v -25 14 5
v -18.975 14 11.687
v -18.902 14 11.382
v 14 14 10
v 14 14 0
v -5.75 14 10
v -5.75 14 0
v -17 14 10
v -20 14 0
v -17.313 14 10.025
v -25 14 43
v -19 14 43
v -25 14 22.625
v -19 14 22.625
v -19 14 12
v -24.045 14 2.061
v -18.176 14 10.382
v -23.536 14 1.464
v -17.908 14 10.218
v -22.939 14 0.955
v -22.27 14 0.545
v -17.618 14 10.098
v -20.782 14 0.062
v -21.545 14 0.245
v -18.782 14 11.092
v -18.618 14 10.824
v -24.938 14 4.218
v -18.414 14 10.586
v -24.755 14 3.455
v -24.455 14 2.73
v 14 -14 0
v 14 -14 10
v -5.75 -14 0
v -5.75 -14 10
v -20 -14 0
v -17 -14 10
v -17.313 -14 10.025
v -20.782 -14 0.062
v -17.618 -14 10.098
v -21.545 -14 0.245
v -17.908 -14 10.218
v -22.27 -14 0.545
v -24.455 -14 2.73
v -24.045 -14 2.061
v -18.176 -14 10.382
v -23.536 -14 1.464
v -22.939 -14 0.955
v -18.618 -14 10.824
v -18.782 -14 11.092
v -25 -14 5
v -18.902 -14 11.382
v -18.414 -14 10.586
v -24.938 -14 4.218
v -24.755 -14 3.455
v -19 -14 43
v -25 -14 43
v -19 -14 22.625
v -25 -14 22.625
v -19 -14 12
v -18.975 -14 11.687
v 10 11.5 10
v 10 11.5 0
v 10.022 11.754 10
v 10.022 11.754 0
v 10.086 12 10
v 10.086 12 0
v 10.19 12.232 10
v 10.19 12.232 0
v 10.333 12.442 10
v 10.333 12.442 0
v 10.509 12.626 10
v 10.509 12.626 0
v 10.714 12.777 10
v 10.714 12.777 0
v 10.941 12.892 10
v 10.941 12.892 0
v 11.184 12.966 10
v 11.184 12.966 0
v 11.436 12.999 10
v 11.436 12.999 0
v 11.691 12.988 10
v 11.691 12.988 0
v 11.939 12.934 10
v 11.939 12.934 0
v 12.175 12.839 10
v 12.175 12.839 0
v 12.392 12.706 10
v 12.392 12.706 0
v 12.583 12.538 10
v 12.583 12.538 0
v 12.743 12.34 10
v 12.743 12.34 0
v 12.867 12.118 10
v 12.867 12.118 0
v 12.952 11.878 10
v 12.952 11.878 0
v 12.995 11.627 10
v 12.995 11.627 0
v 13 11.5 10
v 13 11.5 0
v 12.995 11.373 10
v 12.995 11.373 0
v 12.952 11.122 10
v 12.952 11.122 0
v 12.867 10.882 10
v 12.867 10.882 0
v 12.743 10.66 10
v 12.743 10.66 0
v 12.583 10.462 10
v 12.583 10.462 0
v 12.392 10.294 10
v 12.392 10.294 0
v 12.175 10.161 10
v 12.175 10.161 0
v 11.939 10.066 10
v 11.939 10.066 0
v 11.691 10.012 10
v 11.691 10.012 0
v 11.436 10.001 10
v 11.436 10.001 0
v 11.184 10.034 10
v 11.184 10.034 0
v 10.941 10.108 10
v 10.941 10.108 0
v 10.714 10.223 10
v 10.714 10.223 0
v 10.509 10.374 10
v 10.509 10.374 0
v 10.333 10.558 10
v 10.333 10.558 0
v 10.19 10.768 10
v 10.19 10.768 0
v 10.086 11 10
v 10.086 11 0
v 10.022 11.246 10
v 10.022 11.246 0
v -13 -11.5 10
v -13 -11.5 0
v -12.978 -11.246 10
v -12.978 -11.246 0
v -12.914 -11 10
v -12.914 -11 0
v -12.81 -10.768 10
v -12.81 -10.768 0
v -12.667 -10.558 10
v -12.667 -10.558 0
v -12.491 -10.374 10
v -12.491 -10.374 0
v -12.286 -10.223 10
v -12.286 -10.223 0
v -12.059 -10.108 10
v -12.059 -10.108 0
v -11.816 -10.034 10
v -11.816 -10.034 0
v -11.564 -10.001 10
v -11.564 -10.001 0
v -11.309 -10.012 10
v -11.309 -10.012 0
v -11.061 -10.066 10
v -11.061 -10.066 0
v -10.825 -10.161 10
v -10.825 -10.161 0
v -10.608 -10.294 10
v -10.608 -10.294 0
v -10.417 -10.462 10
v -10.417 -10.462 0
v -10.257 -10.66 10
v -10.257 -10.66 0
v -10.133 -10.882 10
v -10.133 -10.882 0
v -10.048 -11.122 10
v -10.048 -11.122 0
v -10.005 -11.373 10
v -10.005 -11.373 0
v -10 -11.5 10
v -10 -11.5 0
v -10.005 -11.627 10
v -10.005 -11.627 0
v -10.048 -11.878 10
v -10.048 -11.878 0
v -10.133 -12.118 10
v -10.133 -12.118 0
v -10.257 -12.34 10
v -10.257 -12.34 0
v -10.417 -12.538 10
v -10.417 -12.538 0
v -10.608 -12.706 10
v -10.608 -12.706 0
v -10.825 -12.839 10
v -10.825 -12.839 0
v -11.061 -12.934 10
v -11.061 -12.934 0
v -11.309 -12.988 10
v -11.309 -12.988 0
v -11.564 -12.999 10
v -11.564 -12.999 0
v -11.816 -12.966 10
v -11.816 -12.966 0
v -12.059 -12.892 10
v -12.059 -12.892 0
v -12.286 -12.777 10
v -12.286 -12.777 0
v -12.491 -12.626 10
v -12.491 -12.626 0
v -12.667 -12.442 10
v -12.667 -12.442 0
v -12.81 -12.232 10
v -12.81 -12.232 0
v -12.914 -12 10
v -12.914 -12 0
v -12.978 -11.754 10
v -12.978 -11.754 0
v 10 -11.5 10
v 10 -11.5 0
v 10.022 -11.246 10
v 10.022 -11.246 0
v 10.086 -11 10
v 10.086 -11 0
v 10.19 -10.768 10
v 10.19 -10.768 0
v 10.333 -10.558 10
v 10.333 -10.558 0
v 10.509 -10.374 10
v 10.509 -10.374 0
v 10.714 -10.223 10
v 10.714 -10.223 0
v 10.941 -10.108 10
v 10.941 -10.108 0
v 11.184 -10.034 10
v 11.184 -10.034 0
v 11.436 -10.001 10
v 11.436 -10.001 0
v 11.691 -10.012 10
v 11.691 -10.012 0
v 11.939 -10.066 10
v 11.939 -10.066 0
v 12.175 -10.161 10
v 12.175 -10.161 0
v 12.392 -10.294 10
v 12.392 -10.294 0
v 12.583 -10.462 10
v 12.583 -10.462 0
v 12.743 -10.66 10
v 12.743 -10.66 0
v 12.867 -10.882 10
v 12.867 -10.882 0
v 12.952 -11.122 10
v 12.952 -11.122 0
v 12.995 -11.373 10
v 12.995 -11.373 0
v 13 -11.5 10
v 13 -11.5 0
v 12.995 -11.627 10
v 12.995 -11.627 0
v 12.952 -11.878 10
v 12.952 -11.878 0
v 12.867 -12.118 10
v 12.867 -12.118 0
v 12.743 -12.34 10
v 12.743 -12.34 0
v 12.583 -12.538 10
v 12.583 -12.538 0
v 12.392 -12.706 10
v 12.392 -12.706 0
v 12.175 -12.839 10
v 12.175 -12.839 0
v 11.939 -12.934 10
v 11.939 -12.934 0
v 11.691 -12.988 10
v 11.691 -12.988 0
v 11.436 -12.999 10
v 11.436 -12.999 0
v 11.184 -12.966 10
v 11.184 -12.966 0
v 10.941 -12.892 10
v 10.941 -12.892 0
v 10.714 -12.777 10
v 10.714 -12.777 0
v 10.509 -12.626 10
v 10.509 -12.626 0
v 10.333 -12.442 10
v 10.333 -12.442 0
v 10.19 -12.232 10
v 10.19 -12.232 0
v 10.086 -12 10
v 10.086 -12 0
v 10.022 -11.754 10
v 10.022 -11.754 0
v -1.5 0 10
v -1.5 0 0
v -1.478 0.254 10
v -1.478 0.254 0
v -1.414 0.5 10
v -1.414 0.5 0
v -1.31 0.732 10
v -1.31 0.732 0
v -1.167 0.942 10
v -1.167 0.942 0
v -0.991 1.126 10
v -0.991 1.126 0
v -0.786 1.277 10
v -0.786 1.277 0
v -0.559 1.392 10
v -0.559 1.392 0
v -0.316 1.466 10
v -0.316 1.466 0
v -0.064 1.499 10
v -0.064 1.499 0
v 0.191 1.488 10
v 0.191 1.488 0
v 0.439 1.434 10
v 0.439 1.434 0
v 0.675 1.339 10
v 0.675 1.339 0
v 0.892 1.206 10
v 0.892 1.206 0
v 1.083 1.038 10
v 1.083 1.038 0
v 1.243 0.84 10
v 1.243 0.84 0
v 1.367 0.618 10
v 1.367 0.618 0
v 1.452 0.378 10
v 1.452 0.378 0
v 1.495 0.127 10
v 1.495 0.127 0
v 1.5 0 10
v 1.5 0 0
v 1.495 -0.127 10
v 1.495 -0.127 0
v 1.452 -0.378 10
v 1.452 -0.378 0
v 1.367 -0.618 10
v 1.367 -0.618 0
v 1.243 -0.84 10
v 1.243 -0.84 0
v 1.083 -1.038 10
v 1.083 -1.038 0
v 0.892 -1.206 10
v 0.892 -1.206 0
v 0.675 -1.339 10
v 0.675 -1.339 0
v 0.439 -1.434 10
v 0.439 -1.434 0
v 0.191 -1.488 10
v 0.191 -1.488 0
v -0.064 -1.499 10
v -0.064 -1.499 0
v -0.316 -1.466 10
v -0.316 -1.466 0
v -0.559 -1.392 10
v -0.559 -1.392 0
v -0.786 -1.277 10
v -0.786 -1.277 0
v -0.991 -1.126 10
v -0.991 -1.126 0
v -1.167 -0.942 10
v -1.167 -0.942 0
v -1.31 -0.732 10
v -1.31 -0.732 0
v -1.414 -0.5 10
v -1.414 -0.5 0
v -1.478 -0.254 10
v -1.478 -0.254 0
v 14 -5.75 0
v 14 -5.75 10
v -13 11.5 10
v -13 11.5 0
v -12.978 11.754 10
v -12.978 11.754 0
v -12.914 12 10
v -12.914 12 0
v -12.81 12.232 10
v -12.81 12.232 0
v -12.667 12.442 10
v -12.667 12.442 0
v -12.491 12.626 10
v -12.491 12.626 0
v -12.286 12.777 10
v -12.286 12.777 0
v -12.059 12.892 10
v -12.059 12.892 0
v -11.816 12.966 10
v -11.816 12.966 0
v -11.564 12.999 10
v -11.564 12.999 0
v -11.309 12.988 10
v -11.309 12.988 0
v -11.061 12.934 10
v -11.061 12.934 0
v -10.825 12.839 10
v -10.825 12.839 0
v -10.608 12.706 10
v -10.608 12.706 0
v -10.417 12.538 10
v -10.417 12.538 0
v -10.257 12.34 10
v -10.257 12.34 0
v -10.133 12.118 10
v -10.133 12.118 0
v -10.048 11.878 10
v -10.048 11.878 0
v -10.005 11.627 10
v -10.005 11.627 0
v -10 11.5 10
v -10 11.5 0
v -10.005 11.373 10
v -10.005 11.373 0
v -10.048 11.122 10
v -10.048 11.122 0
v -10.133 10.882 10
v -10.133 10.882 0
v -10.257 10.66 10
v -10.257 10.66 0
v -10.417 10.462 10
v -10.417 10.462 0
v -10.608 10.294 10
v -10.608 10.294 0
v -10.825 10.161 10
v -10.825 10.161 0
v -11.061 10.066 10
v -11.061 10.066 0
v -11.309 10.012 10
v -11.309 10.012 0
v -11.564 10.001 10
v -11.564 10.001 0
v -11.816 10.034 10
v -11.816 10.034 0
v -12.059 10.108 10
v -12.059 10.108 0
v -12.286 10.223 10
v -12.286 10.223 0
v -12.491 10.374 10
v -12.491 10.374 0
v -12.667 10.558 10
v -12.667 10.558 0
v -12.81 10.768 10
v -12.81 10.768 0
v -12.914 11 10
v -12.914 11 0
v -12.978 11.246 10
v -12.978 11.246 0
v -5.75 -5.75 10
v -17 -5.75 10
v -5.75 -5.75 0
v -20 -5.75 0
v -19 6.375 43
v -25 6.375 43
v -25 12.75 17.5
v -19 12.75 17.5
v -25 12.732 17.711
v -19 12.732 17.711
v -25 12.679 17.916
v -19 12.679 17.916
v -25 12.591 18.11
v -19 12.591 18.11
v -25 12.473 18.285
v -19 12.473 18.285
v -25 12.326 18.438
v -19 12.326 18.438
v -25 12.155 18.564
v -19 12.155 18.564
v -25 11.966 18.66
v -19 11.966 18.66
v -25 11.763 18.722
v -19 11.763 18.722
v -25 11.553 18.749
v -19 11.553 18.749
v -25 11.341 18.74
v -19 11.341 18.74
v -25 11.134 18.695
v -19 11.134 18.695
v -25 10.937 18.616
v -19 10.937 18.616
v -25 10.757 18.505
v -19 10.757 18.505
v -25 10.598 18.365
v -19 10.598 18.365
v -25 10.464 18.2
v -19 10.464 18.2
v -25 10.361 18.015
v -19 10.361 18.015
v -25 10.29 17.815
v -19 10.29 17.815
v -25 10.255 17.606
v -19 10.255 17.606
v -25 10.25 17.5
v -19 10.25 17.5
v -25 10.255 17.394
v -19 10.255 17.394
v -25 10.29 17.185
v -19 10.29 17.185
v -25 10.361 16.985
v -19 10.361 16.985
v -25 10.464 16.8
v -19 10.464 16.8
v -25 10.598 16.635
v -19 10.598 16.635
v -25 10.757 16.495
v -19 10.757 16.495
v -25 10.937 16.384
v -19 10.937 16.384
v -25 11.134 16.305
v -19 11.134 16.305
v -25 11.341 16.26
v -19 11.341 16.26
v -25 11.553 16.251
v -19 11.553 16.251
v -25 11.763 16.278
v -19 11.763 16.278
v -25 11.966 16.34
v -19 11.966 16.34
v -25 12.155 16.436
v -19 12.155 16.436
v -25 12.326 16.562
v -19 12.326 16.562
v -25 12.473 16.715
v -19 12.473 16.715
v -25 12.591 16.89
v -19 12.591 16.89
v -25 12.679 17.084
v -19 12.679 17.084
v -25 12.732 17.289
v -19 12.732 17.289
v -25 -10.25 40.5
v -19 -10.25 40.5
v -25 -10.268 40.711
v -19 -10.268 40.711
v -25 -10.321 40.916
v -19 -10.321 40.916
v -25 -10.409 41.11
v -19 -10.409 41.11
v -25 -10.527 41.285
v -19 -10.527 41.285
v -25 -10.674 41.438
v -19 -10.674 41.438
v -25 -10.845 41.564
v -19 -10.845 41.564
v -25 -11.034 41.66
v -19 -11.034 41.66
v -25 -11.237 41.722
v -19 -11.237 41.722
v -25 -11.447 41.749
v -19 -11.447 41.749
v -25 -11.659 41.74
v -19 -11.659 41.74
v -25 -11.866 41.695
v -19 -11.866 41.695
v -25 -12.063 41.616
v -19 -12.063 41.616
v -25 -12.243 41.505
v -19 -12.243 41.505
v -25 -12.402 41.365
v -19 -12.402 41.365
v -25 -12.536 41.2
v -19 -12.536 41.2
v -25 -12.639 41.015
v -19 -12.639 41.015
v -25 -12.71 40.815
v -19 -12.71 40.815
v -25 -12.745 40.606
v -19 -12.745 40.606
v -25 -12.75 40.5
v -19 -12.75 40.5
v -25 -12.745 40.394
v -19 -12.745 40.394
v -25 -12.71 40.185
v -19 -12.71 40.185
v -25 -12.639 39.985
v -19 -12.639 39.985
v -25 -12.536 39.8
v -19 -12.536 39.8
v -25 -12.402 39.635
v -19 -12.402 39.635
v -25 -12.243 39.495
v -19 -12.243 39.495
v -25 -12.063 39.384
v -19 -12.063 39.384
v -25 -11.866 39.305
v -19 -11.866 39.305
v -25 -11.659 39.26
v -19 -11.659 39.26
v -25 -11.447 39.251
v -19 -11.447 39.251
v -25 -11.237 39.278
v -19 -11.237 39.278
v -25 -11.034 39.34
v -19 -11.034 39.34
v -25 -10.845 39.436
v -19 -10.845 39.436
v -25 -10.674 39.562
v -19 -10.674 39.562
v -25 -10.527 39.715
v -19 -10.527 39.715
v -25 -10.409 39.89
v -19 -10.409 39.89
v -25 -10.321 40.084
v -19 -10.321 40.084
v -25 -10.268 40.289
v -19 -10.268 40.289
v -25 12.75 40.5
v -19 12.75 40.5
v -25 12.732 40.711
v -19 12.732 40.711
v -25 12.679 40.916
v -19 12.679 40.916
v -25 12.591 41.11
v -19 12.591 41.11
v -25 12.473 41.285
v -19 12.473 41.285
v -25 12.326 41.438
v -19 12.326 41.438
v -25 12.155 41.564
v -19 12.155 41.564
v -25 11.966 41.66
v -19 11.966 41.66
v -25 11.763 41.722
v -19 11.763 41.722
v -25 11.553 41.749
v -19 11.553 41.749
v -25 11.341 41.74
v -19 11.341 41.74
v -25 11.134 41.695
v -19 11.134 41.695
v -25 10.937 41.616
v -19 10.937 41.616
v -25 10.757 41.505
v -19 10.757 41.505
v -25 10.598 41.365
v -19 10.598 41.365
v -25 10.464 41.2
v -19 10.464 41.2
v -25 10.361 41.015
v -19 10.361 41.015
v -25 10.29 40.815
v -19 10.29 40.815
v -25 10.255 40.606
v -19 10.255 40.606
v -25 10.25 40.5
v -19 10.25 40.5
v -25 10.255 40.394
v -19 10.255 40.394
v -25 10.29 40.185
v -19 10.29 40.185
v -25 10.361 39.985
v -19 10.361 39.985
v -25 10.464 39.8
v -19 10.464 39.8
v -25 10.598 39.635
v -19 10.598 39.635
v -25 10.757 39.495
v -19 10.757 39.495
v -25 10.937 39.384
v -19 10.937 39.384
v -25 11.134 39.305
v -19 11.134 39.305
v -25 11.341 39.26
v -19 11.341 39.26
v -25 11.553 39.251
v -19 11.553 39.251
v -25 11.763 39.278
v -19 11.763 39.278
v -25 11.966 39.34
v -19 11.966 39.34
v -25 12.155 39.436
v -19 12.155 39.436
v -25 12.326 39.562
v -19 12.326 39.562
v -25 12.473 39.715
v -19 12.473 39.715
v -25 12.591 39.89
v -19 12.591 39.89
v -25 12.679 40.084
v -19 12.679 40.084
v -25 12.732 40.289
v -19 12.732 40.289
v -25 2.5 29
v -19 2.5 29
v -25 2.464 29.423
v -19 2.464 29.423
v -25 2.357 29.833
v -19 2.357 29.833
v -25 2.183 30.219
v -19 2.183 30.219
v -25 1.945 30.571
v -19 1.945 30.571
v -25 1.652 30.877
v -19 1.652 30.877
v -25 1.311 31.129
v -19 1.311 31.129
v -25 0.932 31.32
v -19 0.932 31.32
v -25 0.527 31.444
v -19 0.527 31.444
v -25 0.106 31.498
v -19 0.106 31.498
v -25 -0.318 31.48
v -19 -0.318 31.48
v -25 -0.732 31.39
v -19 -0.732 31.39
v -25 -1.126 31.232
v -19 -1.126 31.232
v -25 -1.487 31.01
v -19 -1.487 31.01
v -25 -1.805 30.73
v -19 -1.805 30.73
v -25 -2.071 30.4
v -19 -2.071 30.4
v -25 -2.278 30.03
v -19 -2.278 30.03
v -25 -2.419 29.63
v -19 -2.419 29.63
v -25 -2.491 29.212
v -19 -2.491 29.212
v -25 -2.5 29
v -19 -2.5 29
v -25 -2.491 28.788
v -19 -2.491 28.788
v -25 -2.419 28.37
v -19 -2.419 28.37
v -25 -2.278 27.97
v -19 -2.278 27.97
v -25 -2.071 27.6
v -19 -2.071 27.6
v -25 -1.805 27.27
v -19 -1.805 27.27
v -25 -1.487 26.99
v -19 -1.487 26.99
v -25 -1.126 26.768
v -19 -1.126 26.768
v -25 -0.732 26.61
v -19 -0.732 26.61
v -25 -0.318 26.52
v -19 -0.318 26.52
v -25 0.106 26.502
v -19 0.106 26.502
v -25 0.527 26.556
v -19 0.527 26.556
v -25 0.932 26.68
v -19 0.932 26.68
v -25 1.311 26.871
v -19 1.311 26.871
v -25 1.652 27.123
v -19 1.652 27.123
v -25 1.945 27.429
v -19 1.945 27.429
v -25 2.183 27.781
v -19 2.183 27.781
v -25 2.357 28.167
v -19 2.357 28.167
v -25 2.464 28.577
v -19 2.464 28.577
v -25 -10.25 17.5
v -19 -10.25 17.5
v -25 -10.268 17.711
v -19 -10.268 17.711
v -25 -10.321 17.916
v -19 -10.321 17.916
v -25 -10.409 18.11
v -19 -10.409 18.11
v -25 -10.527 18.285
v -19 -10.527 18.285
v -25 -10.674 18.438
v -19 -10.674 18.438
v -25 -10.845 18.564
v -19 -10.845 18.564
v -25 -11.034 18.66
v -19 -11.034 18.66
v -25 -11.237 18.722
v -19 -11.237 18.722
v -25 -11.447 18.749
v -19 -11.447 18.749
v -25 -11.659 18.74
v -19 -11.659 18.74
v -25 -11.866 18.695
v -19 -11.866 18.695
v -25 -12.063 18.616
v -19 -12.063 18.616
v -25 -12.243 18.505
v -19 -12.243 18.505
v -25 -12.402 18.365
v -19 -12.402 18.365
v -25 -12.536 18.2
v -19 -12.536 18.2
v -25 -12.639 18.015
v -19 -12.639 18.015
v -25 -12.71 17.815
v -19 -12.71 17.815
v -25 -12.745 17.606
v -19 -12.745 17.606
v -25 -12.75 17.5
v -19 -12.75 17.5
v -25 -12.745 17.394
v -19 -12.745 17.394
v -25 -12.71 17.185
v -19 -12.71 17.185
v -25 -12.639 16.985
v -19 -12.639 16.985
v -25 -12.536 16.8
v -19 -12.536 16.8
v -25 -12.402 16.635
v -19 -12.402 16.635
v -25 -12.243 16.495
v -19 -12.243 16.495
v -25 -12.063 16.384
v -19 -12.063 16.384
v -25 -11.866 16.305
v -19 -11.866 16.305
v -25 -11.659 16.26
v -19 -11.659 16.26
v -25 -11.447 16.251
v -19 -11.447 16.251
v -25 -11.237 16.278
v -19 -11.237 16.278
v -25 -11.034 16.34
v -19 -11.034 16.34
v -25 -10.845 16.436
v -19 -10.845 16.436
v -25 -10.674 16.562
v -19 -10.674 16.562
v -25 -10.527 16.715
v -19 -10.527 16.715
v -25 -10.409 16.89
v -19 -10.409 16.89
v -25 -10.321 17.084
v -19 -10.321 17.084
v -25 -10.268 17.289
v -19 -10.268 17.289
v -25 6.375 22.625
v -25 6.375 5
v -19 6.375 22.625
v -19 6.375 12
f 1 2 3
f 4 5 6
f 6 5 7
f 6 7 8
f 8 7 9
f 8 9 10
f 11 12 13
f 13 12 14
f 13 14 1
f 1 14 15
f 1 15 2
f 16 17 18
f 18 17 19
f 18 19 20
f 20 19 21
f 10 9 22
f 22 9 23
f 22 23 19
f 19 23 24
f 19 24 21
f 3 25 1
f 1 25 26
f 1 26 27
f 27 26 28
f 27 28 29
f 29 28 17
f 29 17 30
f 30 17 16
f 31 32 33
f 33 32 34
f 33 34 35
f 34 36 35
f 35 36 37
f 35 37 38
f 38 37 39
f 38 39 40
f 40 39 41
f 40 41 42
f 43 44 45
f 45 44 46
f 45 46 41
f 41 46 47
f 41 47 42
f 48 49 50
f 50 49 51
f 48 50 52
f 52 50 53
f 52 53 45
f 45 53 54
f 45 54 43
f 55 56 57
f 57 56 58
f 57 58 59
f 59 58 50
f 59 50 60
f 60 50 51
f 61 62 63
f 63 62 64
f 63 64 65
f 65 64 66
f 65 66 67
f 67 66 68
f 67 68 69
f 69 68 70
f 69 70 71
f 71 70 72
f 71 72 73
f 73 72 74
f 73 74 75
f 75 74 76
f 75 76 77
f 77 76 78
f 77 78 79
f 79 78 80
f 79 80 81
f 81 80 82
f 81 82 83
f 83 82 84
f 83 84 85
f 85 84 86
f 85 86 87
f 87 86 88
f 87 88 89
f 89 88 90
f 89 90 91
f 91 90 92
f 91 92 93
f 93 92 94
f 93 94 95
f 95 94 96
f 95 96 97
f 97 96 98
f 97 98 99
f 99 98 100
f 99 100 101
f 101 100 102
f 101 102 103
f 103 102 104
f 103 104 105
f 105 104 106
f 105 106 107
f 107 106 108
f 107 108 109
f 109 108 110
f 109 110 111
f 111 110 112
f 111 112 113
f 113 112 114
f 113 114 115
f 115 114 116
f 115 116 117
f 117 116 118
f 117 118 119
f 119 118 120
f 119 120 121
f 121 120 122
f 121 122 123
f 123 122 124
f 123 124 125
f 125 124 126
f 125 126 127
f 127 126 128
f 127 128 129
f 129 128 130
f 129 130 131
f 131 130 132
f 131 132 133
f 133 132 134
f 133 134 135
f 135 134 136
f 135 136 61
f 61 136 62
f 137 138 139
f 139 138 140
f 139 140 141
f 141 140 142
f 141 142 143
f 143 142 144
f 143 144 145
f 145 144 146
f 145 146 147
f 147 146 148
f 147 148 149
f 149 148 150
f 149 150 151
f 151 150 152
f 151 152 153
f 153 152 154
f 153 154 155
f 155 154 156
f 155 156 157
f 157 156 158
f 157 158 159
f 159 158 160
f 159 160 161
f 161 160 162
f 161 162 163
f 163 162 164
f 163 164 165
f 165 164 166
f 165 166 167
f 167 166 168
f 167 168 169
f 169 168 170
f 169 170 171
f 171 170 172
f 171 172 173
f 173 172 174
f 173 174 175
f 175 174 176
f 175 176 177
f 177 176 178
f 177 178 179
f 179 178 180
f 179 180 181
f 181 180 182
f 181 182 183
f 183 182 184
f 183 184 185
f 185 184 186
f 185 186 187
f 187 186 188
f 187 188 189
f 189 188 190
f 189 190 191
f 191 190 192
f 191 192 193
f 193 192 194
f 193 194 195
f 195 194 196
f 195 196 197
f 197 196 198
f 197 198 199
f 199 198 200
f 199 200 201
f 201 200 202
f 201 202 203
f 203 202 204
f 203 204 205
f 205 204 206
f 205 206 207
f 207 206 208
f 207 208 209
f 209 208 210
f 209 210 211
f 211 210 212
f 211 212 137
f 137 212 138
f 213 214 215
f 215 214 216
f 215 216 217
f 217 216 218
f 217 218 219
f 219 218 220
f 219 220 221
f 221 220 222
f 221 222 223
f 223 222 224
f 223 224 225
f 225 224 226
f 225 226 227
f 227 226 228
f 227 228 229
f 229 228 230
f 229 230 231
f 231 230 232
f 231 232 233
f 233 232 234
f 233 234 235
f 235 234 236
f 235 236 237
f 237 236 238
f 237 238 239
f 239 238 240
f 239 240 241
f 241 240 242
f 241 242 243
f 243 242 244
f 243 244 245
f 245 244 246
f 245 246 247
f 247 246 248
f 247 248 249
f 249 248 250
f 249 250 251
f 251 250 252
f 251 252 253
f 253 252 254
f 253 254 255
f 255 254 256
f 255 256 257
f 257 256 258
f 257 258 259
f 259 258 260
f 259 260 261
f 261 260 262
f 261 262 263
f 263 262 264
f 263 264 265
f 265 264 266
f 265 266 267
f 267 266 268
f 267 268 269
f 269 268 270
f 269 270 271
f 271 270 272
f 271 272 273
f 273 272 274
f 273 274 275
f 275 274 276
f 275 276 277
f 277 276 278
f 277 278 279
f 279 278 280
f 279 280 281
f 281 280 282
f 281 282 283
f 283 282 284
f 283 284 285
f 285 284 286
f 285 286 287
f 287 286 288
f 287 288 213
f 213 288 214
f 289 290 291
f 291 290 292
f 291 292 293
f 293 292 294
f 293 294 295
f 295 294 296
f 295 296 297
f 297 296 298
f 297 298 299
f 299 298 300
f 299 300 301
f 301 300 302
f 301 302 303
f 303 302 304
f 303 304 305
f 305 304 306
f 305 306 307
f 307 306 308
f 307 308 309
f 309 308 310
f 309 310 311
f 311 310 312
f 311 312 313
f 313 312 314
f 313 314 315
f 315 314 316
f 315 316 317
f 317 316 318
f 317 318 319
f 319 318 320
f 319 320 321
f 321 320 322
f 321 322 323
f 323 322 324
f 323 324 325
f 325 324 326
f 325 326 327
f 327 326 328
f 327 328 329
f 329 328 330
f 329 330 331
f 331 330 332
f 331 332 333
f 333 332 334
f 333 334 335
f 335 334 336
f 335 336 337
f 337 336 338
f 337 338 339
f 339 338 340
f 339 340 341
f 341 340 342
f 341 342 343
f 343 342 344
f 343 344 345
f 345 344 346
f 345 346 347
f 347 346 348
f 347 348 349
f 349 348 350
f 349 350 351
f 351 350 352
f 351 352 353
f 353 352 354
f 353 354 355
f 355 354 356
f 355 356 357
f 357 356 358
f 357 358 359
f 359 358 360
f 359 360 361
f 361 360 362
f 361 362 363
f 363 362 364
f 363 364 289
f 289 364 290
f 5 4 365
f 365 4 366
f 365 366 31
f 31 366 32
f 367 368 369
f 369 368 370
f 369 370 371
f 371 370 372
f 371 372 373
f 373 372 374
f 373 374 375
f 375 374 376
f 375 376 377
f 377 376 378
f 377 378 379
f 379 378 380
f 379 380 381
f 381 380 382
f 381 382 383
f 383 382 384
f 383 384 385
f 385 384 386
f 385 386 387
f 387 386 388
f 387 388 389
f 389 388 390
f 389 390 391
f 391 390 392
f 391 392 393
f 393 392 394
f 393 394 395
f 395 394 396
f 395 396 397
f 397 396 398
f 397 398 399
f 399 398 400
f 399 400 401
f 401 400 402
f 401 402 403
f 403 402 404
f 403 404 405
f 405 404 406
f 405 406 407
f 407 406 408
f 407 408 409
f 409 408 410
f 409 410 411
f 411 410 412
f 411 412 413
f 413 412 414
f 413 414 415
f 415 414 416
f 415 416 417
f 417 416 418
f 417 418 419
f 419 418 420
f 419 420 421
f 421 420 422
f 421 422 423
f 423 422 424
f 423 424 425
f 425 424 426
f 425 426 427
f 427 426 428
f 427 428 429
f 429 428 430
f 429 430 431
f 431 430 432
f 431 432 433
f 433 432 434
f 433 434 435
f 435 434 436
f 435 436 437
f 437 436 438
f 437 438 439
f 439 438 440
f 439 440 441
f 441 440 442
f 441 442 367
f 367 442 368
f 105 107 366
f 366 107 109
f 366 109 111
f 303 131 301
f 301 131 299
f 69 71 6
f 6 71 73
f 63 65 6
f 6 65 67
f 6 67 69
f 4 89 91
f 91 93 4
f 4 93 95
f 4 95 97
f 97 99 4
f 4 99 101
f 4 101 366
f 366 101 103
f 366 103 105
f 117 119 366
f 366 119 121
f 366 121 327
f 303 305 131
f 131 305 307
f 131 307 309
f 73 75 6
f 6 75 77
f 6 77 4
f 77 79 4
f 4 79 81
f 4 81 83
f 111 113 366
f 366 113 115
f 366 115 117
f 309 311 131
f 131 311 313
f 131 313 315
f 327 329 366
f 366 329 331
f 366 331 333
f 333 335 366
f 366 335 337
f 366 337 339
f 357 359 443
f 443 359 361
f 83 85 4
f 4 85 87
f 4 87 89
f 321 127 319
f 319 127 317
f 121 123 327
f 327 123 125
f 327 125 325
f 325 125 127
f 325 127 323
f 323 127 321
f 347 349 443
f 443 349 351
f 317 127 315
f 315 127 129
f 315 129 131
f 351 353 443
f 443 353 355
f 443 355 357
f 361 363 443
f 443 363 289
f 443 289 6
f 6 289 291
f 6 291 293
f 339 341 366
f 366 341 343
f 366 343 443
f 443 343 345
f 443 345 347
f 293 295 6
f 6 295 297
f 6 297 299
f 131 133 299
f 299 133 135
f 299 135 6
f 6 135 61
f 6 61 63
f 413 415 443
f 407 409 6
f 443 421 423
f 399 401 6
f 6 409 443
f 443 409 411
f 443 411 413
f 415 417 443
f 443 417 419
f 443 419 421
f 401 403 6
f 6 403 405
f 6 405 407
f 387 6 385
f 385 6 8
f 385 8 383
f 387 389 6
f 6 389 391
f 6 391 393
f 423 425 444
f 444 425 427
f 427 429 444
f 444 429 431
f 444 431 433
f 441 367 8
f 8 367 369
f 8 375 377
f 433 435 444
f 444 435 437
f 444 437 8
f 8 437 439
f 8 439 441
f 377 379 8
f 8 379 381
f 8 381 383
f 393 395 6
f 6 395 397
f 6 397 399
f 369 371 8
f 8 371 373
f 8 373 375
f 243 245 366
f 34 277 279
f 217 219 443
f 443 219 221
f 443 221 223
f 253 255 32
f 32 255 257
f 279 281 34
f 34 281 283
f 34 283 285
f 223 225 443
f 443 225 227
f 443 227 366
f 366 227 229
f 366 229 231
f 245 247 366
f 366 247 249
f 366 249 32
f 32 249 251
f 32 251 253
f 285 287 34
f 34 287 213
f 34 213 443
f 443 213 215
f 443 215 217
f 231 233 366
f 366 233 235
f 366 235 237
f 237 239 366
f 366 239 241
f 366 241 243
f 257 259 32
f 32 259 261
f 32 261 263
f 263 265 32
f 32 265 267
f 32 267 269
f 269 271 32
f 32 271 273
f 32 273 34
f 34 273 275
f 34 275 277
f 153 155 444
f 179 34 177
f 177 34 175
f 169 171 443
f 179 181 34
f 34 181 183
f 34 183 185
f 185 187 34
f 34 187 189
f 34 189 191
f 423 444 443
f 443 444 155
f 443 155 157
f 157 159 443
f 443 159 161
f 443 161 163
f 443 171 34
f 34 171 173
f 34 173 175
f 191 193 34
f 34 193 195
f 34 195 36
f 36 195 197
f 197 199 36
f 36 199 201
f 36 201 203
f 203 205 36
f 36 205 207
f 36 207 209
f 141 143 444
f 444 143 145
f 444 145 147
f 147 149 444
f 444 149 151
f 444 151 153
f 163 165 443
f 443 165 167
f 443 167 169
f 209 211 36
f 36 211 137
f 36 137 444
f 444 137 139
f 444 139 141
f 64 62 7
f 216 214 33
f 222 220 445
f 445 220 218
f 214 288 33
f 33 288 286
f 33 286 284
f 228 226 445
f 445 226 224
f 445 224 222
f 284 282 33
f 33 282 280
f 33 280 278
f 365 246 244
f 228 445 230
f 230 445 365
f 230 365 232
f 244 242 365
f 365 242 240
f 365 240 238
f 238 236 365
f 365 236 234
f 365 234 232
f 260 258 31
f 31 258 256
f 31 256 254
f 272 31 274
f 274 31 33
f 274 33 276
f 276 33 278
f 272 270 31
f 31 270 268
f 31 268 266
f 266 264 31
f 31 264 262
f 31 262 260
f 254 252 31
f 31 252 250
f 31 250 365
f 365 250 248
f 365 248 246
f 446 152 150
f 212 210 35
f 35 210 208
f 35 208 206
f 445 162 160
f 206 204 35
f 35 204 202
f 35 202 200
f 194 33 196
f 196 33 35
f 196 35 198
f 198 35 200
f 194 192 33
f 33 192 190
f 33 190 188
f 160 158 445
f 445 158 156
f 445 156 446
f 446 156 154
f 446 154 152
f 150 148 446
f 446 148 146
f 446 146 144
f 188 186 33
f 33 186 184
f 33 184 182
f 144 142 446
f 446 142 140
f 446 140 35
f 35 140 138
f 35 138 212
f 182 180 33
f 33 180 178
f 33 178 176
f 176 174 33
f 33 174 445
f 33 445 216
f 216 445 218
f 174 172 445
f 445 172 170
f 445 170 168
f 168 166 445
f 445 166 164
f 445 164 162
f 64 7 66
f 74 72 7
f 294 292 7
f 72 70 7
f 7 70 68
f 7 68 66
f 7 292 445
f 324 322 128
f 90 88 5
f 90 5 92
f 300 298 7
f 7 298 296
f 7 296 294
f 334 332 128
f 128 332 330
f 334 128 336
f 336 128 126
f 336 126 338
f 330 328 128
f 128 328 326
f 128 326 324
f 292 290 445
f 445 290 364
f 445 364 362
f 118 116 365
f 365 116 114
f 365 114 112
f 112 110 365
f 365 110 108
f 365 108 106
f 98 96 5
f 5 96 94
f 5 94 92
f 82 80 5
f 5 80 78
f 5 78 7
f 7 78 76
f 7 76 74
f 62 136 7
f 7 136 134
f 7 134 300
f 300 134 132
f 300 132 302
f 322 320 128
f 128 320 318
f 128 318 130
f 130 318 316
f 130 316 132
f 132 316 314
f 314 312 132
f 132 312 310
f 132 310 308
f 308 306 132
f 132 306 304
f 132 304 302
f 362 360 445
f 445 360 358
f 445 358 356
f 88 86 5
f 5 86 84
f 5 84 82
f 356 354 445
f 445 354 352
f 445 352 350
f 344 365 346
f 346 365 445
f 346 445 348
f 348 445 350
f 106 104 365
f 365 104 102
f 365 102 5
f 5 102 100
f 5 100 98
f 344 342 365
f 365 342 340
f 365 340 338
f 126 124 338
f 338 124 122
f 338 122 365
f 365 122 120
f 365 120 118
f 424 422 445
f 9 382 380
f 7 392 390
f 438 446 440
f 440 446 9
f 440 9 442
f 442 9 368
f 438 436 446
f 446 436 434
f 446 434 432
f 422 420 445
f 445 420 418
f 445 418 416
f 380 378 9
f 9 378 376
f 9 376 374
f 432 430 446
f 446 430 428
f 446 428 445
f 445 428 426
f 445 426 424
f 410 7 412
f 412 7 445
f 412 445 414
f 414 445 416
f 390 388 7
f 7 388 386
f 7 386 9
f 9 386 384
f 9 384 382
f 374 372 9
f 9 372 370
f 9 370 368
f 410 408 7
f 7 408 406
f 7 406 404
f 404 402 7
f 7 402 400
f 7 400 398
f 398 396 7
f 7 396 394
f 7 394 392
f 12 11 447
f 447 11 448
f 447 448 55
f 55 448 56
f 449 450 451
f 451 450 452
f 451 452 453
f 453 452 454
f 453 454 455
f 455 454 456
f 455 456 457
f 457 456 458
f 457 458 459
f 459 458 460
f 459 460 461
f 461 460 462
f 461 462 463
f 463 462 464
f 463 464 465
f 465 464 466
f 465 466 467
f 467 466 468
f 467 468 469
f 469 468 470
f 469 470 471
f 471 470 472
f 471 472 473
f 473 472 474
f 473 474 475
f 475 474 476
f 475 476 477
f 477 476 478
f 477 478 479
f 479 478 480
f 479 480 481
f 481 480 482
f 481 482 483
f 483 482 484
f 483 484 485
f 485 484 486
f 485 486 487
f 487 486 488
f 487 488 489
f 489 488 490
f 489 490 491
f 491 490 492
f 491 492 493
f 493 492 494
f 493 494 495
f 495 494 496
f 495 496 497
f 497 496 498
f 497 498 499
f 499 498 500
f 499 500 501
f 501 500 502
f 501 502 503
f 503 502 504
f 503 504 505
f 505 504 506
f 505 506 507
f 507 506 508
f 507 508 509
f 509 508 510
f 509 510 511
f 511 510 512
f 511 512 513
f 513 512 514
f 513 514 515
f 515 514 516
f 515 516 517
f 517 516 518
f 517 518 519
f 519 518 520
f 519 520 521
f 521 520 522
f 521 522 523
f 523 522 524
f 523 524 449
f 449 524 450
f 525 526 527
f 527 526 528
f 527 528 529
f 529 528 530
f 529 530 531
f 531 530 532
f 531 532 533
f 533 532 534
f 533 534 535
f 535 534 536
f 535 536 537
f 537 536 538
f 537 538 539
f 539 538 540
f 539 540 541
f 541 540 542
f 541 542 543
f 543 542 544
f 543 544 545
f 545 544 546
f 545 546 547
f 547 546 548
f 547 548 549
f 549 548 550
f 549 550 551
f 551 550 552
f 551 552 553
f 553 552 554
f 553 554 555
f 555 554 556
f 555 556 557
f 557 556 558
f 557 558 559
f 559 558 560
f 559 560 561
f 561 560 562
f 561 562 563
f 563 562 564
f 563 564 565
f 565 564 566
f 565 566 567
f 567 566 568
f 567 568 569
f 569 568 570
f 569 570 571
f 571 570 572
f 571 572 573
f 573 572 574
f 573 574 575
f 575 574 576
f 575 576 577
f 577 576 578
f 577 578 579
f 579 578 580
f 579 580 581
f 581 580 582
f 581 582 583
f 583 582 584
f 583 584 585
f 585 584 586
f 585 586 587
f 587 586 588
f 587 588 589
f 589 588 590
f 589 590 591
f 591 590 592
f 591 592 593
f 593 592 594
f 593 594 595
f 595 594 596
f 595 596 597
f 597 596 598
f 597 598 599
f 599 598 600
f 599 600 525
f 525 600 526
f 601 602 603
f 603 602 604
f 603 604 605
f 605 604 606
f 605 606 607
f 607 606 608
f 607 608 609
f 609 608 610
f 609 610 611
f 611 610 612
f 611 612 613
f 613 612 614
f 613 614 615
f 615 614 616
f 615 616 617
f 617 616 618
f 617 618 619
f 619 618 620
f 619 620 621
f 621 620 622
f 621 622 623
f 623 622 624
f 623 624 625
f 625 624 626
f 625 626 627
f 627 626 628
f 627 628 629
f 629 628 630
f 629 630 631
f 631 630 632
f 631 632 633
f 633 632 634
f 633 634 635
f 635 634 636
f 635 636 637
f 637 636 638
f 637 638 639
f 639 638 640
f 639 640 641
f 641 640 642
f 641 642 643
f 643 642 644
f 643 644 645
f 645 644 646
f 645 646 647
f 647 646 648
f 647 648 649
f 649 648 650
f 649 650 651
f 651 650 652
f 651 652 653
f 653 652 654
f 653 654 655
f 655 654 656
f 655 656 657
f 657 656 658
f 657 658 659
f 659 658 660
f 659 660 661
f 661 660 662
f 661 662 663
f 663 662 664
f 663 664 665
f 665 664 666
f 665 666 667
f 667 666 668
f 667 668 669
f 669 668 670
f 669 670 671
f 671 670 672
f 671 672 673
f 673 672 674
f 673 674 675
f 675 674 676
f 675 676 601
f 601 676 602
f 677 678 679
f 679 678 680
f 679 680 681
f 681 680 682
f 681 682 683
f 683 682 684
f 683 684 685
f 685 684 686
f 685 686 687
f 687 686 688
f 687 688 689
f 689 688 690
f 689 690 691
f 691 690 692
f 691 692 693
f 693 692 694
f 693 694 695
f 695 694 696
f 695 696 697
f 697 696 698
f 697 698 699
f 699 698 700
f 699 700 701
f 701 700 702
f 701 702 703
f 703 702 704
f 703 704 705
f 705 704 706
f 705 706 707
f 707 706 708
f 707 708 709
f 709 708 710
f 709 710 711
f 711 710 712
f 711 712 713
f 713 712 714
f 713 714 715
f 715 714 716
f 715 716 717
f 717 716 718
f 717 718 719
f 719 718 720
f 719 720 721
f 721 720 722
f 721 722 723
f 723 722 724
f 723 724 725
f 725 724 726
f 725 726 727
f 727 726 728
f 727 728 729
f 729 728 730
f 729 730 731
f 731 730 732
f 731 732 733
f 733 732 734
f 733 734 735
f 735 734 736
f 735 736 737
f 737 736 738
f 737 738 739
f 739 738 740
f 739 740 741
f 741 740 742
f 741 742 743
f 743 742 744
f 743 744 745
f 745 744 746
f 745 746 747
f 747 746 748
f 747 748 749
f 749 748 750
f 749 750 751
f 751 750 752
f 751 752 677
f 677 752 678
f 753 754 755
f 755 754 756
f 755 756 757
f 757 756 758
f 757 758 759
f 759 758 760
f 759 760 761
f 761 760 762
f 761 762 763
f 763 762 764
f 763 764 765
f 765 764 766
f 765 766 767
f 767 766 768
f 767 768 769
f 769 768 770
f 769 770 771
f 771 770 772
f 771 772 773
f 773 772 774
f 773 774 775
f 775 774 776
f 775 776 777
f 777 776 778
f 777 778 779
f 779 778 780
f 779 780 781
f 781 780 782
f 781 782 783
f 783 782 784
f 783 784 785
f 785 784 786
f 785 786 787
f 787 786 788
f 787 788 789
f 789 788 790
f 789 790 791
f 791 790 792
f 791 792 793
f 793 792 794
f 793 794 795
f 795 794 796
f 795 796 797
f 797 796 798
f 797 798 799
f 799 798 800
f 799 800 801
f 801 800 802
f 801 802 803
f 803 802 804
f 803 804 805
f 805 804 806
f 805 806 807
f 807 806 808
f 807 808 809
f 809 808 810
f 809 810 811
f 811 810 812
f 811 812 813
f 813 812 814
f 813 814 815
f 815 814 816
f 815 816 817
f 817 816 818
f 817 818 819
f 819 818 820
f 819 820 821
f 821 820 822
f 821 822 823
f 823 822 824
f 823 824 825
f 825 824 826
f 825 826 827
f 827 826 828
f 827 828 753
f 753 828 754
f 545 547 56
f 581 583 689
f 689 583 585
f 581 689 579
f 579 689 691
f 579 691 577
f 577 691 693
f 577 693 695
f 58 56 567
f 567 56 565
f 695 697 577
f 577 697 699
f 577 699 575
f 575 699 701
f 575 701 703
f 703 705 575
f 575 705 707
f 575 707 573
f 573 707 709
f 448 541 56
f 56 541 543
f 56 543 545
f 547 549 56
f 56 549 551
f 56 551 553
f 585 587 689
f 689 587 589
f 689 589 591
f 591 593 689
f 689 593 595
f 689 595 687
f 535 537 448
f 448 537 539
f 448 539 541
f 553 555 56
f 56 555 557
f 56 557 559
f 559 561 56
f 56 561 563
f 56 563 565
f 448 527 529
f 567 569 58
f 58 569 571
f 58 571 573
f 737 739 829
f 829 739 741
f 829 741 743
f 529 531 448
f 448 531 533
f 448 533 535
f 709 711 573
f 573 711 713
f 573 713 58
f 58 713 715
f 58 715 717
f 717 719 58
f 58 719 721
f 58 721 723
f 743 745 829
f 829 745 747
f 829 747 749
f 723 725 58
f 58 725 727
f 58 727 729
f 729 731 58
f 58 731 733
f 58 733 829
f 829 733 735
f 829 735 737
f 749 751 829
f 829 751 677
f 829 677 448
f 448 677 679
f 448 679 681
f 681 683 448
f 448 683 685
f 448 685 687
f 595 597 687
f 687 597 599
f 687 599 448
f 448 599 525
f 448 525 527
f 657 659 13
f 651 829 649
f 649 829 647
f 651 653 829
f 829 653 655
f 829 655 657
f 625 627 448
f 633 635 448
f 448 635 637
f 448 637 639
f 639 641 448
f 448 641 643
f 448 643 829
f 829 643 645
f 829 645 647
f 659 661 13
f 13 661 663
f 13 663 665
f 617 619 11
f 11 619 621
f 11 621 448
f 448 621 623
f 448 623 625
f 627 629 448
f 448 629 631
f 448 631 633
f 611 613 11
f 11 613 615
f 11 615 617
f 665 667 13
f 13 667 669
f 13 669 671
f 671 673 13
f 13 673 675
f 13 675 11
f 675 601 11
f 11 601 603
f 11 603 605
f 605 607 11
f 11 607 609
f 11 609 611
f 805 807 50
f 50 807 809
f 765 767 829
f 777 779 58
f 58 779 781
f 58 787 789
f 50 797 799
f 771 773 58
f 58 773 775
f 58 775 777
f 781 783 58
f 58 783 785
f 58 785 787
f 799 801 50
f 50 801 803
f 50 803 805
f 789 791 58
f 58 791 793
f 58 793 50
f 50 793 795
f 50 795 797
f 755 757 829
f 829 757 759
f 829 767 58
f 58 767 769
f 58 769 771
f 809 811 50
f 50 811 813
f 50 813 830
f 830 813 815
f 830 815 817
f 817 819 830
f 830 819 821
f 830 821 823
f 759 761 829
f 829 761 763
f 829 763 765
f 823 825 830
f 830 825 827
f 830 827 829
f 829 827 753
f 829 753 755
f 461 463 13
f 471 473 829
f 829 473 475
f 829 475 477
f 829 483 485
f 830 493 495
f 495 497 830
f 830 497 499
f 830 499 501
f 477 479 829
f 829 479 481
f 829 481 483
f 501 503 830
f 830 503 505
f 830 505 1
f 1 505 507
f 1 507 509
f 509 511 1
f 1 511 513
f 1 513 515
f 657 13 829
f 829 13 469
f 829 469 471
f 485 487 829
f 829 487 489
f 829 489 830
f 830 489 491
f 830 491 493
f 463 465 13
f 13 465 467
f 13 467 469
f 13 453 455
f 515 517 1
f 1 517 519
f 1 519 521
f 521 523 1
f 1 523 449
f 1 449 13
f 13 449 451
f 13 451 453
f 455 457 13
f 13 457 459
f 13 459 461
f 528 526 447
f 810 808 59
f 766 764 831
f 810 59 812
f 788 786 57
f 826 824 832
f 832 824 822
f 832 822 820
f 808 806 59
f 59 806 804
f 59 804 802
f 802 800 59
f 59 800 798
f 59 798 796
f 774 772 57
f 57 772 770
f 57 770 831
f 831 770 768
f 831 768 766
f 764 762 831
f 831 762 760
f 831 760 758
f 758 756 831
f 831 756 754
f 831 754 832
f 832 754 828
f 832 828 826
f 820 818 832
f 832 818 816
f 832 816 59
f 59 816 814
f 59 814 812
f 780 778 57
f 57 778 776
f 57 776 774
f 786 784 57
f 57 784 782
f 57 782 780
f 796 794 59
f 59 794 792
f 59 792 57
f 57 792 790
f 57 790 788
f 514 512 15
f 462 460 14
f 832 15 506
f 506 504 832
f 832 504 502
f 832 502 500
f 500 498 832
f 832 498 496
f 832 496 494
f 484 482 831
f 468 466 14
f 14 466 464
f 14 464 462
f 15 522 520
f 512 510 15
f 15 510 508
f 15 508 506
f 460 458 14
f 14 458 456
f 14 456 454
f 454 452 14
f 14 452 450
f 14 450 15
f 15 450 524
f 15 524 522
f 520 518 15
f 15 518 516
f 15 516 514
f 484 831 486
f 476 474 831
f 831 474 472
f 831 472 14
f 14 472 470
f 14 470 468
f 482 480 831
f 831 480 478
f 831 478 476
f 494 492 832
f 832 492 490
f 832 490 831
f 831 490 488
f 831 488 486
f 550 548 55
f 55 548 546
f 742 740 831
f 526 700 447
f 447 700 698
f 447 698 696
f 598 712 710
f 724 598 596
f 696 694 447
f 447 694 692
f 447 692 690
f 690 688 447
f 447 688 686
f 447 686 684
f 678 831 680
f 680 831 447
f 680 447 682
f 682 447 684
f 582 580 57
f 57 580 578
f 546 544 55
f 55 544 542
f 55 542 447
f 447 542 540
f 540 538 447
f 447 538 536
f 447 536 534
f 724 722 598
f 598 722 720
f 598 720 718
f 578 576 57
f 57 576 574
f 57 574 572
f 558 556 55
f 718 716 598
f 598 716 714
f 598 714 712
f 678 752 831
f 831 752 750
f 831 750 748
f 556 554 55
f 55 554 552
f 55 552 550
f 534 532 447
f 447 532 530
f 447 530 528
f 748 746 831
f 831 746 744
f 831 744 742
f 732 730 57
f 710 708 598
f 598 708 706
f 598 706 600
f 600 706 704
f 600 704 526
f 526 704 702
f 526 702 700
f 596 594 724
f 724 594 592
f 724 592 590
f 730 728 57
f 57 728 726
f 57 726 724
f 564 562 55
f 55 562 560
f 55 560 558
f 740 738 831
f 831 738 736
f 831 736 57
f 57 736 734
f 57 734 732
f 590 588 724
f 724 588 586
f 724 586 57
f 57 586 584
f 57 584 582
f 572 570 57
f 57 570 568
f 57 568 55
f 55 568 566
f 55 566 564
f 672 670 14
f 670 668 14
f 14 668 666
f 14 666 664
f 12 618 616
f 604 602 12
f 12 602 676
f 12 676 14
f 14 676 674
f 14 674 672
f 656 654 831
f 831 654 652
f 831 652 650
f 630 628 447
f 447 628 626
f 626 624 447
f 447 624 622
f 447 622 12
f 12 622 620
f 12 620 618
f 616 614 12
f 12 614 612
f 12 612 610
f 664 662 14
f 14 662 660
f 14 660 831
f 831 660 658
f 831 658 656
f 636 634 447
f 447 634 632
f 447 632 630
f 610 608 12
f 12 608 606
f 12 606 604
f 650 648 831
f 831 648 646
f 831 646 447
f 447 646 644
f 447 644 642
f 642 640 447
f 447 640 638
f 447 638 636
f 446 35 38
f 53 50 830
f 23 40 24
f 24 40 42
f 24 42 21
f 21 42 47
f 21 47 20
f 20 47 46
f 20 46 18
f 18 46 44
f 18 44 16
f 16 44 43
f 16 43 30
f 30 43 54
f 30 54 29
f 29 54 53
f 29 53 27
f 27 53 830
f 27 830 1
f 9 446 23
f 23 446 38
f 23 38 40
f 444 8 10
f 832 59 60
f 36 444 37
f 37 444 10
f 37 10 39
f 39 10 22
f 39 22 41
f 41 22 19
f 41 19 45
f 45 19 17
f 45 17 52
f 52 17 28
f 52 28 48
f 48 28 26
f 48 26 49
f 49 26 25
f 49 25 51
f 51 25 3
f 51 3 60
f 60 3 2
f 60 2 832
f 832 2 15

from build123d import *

# Parameters (mm, degrees)
SKETCH_1_W      = 5
SKETCH_1_H      = 28
SKETCH_1_W_2    = 28
SKETCH_1_R      = 1.5
EXTRUDE_1_DEPTH = 10
SKETCH_3_W      = 10
SKETCH_3_H      = 28
SKETCH_3_W_2    = 5
EXTRUDE_3_DEPTH = 6
FILLET_3_R      = 5
FILLET_4_R      = 2


with BuildPart() as part:
    # 草图1 → 凸台-拉伸1 (new body)
    # profile 1 of 2: a face of its own
    with BuildSketch(Plane.XY):
        with Locations((-16.5, 0)):
            Rectangle(SKETCH_1_W, SKETCH_1_H)
    # profile 2 of 2: a face of its own
    with BuildSketch(Plane.XY):
        Rectangle(SKETCH_1_W_2, SKETCH_1_H)
        Circle(SKETCH_1_R, mode=Mode.SUBTRACT)
        with Locations((11.5, -11.5)):
            Circle(SKETCH_1_R, mode=Mode.SUBTRACT)
        with Locations((-11.5, -11.5)):
            Circle(SKETCH_1_R, mode=Mode.SUBTRACT)
        with Locations((11.5, 11.5)):
            Circle(SKETCH_1_R, mode=Mode.SUBTRACT)
        with Locations((-11.5, 11.5)):
            Circle(SKETCH_1_R, mode=Mode.SUBTRACT)
    extrude(amount=EXTRUDE_1_DEPTH)

    # 草图3 → 凸台-拉伸3 (add)
    with BuildSketch(Plane.ZY.offset(19)):
        with Locations((5, 0)):
            Rectangle(SKETCH_3_W, SKETCH_3_H)
        with Locations((12.5, 0)):
            Rectangle(SKETCH_3_W_2, SKETCH_3_H)
        with BuildLine():
            Line((16.616116524, 12.383883476), (15, 14))
            Line((15, 14), (15, -14))
            Line((15, -14), (16.616116524, -12.383883476))
            ThreePointArc((16.616116524, -12.383883476), (16.616116524, -10.616116524), (18.383883476, -10.616116524))
            Line((18.383883476, -10.616116524), (27.232233047, -1.767766953))
            ThreePointArc((27.232233047, -1.767766953), (26.5, 0), (27.232233047, 1.767766953))
            Line((27.232233047, 1.767766953), (18.383883476, 10.616116524))
            ThreePointArc((18.383883476, 10.616116524), (16.616116524, 10.616116524), (16.616116524, 12.383883476))
        make_face()
        with BuildLine():
            Line((43, 14), (15, 14))
            Line((15, 14), (16.616116524, 12.383883476))
            ThreePointArc((16.616116524, 12.383883476), (17.97835429, 12.654849416), (18.75, 11.5))
            ThreePointArc((18.75, 11.5), (18.654849416, 11.02164571), (18.383883476, 10.616116524))
            Line((18.383883476, 10.616116524), (27.232233047, 1.767766953))
            ThreePointArc((27.232233047, 1.767766953), (29, 2.5), (30.767766953, 1.767766953))
            Line((30.767766953, 1.767766953), (39.616116524, 10.616116524))
            ThreePointArc((39.616116524, 10.616116524), (39.616116524, 12.383883476), (41.383883476, 12.383883476))
            Line((41.383883476, 12.383883476), (43, 14))
        make_face()
        with BuildLine():
            Line((43, -14), (43, 14))
            Line((43, 14), (41.383883476, 12.383883476))
            ThreePointArc((41.383883476, 12.383883476), (41.654849416, 11.97835429), (41.75, 11.5))
            ThreePointArc((41.75, 11.5), (40.97835429, 10.345150584), (39.616116524, 10.616116524))
            Line((39.616116524, 10.616116524), (30.767766953, 1.767766953))
            ThreePointArc((30.767766953, 1.767766953), (31.309698831, 0.956708581), (31.5, 0))
            ThreePointArc((31.5, 0), (31.309698831, -0.956708581), (30.767766953, -1.767766953))
            Line((30.767766953, -1.767766953), (39.616116524, -10.616116524))
            ThreePointArc((39.616116524, -10.616116524), (40.97835429, -10.345150584), (41.75, -11.5))
            ThreePointArc((41.75, -11.5), (41.654849416, -11.97835429), (41.383883476, -12.383883476))
            Line((41.383883476, -12.383883476), (43, -14))
        make_face()
        with BuildLine():
            Line((16.616116524, -12.383883476), (15, -14))
            Line((15, -14), (43, -14))
            Line((43, -14), (41.383883476, -12.383883476))
            ThreePointArc((41.383883476, -12.383883476), (39.616116524, -12.383883476), (39.616116524, -10.616116524))
            Line((39.616116524, -10.616116524), (30.767766953, -1.767766953))
            ThreePointArc((30.767766953, -1.767766953), (29, -2.5), (27.232233047, -1.767766953))
            Line((27.232233047, -1.767766953), (18.383883476, -10.616116524))
            ThreePointArc((18.383883476, -10.616116524), (18.654849416, -11.02164571), (18.75, -11.5))
            ThreePointArc((18.75, -11.5), (17.97835429, -12.654849416), (16.616116524, -12.383883476))
        make_face()
    extrude(amount=EXTRUDE_3_DEPTH)

    # 圆角3
    fillet_3_edges = [part.edges().sort_by_distance(p)[0] for p in [
        (-25, 0, 0),
    ]]
    fillet(fillet_3_edges, radius=FILLET_3_R)

    # 圆角4
    fillet_4_edges = [part.edges().sort_by_distance(p)[0] for p in [
        (-19, 0, 10),
    ]]
    fillet(fillet_4_edges, radius=FILLET_4_R)


solid = part.part
